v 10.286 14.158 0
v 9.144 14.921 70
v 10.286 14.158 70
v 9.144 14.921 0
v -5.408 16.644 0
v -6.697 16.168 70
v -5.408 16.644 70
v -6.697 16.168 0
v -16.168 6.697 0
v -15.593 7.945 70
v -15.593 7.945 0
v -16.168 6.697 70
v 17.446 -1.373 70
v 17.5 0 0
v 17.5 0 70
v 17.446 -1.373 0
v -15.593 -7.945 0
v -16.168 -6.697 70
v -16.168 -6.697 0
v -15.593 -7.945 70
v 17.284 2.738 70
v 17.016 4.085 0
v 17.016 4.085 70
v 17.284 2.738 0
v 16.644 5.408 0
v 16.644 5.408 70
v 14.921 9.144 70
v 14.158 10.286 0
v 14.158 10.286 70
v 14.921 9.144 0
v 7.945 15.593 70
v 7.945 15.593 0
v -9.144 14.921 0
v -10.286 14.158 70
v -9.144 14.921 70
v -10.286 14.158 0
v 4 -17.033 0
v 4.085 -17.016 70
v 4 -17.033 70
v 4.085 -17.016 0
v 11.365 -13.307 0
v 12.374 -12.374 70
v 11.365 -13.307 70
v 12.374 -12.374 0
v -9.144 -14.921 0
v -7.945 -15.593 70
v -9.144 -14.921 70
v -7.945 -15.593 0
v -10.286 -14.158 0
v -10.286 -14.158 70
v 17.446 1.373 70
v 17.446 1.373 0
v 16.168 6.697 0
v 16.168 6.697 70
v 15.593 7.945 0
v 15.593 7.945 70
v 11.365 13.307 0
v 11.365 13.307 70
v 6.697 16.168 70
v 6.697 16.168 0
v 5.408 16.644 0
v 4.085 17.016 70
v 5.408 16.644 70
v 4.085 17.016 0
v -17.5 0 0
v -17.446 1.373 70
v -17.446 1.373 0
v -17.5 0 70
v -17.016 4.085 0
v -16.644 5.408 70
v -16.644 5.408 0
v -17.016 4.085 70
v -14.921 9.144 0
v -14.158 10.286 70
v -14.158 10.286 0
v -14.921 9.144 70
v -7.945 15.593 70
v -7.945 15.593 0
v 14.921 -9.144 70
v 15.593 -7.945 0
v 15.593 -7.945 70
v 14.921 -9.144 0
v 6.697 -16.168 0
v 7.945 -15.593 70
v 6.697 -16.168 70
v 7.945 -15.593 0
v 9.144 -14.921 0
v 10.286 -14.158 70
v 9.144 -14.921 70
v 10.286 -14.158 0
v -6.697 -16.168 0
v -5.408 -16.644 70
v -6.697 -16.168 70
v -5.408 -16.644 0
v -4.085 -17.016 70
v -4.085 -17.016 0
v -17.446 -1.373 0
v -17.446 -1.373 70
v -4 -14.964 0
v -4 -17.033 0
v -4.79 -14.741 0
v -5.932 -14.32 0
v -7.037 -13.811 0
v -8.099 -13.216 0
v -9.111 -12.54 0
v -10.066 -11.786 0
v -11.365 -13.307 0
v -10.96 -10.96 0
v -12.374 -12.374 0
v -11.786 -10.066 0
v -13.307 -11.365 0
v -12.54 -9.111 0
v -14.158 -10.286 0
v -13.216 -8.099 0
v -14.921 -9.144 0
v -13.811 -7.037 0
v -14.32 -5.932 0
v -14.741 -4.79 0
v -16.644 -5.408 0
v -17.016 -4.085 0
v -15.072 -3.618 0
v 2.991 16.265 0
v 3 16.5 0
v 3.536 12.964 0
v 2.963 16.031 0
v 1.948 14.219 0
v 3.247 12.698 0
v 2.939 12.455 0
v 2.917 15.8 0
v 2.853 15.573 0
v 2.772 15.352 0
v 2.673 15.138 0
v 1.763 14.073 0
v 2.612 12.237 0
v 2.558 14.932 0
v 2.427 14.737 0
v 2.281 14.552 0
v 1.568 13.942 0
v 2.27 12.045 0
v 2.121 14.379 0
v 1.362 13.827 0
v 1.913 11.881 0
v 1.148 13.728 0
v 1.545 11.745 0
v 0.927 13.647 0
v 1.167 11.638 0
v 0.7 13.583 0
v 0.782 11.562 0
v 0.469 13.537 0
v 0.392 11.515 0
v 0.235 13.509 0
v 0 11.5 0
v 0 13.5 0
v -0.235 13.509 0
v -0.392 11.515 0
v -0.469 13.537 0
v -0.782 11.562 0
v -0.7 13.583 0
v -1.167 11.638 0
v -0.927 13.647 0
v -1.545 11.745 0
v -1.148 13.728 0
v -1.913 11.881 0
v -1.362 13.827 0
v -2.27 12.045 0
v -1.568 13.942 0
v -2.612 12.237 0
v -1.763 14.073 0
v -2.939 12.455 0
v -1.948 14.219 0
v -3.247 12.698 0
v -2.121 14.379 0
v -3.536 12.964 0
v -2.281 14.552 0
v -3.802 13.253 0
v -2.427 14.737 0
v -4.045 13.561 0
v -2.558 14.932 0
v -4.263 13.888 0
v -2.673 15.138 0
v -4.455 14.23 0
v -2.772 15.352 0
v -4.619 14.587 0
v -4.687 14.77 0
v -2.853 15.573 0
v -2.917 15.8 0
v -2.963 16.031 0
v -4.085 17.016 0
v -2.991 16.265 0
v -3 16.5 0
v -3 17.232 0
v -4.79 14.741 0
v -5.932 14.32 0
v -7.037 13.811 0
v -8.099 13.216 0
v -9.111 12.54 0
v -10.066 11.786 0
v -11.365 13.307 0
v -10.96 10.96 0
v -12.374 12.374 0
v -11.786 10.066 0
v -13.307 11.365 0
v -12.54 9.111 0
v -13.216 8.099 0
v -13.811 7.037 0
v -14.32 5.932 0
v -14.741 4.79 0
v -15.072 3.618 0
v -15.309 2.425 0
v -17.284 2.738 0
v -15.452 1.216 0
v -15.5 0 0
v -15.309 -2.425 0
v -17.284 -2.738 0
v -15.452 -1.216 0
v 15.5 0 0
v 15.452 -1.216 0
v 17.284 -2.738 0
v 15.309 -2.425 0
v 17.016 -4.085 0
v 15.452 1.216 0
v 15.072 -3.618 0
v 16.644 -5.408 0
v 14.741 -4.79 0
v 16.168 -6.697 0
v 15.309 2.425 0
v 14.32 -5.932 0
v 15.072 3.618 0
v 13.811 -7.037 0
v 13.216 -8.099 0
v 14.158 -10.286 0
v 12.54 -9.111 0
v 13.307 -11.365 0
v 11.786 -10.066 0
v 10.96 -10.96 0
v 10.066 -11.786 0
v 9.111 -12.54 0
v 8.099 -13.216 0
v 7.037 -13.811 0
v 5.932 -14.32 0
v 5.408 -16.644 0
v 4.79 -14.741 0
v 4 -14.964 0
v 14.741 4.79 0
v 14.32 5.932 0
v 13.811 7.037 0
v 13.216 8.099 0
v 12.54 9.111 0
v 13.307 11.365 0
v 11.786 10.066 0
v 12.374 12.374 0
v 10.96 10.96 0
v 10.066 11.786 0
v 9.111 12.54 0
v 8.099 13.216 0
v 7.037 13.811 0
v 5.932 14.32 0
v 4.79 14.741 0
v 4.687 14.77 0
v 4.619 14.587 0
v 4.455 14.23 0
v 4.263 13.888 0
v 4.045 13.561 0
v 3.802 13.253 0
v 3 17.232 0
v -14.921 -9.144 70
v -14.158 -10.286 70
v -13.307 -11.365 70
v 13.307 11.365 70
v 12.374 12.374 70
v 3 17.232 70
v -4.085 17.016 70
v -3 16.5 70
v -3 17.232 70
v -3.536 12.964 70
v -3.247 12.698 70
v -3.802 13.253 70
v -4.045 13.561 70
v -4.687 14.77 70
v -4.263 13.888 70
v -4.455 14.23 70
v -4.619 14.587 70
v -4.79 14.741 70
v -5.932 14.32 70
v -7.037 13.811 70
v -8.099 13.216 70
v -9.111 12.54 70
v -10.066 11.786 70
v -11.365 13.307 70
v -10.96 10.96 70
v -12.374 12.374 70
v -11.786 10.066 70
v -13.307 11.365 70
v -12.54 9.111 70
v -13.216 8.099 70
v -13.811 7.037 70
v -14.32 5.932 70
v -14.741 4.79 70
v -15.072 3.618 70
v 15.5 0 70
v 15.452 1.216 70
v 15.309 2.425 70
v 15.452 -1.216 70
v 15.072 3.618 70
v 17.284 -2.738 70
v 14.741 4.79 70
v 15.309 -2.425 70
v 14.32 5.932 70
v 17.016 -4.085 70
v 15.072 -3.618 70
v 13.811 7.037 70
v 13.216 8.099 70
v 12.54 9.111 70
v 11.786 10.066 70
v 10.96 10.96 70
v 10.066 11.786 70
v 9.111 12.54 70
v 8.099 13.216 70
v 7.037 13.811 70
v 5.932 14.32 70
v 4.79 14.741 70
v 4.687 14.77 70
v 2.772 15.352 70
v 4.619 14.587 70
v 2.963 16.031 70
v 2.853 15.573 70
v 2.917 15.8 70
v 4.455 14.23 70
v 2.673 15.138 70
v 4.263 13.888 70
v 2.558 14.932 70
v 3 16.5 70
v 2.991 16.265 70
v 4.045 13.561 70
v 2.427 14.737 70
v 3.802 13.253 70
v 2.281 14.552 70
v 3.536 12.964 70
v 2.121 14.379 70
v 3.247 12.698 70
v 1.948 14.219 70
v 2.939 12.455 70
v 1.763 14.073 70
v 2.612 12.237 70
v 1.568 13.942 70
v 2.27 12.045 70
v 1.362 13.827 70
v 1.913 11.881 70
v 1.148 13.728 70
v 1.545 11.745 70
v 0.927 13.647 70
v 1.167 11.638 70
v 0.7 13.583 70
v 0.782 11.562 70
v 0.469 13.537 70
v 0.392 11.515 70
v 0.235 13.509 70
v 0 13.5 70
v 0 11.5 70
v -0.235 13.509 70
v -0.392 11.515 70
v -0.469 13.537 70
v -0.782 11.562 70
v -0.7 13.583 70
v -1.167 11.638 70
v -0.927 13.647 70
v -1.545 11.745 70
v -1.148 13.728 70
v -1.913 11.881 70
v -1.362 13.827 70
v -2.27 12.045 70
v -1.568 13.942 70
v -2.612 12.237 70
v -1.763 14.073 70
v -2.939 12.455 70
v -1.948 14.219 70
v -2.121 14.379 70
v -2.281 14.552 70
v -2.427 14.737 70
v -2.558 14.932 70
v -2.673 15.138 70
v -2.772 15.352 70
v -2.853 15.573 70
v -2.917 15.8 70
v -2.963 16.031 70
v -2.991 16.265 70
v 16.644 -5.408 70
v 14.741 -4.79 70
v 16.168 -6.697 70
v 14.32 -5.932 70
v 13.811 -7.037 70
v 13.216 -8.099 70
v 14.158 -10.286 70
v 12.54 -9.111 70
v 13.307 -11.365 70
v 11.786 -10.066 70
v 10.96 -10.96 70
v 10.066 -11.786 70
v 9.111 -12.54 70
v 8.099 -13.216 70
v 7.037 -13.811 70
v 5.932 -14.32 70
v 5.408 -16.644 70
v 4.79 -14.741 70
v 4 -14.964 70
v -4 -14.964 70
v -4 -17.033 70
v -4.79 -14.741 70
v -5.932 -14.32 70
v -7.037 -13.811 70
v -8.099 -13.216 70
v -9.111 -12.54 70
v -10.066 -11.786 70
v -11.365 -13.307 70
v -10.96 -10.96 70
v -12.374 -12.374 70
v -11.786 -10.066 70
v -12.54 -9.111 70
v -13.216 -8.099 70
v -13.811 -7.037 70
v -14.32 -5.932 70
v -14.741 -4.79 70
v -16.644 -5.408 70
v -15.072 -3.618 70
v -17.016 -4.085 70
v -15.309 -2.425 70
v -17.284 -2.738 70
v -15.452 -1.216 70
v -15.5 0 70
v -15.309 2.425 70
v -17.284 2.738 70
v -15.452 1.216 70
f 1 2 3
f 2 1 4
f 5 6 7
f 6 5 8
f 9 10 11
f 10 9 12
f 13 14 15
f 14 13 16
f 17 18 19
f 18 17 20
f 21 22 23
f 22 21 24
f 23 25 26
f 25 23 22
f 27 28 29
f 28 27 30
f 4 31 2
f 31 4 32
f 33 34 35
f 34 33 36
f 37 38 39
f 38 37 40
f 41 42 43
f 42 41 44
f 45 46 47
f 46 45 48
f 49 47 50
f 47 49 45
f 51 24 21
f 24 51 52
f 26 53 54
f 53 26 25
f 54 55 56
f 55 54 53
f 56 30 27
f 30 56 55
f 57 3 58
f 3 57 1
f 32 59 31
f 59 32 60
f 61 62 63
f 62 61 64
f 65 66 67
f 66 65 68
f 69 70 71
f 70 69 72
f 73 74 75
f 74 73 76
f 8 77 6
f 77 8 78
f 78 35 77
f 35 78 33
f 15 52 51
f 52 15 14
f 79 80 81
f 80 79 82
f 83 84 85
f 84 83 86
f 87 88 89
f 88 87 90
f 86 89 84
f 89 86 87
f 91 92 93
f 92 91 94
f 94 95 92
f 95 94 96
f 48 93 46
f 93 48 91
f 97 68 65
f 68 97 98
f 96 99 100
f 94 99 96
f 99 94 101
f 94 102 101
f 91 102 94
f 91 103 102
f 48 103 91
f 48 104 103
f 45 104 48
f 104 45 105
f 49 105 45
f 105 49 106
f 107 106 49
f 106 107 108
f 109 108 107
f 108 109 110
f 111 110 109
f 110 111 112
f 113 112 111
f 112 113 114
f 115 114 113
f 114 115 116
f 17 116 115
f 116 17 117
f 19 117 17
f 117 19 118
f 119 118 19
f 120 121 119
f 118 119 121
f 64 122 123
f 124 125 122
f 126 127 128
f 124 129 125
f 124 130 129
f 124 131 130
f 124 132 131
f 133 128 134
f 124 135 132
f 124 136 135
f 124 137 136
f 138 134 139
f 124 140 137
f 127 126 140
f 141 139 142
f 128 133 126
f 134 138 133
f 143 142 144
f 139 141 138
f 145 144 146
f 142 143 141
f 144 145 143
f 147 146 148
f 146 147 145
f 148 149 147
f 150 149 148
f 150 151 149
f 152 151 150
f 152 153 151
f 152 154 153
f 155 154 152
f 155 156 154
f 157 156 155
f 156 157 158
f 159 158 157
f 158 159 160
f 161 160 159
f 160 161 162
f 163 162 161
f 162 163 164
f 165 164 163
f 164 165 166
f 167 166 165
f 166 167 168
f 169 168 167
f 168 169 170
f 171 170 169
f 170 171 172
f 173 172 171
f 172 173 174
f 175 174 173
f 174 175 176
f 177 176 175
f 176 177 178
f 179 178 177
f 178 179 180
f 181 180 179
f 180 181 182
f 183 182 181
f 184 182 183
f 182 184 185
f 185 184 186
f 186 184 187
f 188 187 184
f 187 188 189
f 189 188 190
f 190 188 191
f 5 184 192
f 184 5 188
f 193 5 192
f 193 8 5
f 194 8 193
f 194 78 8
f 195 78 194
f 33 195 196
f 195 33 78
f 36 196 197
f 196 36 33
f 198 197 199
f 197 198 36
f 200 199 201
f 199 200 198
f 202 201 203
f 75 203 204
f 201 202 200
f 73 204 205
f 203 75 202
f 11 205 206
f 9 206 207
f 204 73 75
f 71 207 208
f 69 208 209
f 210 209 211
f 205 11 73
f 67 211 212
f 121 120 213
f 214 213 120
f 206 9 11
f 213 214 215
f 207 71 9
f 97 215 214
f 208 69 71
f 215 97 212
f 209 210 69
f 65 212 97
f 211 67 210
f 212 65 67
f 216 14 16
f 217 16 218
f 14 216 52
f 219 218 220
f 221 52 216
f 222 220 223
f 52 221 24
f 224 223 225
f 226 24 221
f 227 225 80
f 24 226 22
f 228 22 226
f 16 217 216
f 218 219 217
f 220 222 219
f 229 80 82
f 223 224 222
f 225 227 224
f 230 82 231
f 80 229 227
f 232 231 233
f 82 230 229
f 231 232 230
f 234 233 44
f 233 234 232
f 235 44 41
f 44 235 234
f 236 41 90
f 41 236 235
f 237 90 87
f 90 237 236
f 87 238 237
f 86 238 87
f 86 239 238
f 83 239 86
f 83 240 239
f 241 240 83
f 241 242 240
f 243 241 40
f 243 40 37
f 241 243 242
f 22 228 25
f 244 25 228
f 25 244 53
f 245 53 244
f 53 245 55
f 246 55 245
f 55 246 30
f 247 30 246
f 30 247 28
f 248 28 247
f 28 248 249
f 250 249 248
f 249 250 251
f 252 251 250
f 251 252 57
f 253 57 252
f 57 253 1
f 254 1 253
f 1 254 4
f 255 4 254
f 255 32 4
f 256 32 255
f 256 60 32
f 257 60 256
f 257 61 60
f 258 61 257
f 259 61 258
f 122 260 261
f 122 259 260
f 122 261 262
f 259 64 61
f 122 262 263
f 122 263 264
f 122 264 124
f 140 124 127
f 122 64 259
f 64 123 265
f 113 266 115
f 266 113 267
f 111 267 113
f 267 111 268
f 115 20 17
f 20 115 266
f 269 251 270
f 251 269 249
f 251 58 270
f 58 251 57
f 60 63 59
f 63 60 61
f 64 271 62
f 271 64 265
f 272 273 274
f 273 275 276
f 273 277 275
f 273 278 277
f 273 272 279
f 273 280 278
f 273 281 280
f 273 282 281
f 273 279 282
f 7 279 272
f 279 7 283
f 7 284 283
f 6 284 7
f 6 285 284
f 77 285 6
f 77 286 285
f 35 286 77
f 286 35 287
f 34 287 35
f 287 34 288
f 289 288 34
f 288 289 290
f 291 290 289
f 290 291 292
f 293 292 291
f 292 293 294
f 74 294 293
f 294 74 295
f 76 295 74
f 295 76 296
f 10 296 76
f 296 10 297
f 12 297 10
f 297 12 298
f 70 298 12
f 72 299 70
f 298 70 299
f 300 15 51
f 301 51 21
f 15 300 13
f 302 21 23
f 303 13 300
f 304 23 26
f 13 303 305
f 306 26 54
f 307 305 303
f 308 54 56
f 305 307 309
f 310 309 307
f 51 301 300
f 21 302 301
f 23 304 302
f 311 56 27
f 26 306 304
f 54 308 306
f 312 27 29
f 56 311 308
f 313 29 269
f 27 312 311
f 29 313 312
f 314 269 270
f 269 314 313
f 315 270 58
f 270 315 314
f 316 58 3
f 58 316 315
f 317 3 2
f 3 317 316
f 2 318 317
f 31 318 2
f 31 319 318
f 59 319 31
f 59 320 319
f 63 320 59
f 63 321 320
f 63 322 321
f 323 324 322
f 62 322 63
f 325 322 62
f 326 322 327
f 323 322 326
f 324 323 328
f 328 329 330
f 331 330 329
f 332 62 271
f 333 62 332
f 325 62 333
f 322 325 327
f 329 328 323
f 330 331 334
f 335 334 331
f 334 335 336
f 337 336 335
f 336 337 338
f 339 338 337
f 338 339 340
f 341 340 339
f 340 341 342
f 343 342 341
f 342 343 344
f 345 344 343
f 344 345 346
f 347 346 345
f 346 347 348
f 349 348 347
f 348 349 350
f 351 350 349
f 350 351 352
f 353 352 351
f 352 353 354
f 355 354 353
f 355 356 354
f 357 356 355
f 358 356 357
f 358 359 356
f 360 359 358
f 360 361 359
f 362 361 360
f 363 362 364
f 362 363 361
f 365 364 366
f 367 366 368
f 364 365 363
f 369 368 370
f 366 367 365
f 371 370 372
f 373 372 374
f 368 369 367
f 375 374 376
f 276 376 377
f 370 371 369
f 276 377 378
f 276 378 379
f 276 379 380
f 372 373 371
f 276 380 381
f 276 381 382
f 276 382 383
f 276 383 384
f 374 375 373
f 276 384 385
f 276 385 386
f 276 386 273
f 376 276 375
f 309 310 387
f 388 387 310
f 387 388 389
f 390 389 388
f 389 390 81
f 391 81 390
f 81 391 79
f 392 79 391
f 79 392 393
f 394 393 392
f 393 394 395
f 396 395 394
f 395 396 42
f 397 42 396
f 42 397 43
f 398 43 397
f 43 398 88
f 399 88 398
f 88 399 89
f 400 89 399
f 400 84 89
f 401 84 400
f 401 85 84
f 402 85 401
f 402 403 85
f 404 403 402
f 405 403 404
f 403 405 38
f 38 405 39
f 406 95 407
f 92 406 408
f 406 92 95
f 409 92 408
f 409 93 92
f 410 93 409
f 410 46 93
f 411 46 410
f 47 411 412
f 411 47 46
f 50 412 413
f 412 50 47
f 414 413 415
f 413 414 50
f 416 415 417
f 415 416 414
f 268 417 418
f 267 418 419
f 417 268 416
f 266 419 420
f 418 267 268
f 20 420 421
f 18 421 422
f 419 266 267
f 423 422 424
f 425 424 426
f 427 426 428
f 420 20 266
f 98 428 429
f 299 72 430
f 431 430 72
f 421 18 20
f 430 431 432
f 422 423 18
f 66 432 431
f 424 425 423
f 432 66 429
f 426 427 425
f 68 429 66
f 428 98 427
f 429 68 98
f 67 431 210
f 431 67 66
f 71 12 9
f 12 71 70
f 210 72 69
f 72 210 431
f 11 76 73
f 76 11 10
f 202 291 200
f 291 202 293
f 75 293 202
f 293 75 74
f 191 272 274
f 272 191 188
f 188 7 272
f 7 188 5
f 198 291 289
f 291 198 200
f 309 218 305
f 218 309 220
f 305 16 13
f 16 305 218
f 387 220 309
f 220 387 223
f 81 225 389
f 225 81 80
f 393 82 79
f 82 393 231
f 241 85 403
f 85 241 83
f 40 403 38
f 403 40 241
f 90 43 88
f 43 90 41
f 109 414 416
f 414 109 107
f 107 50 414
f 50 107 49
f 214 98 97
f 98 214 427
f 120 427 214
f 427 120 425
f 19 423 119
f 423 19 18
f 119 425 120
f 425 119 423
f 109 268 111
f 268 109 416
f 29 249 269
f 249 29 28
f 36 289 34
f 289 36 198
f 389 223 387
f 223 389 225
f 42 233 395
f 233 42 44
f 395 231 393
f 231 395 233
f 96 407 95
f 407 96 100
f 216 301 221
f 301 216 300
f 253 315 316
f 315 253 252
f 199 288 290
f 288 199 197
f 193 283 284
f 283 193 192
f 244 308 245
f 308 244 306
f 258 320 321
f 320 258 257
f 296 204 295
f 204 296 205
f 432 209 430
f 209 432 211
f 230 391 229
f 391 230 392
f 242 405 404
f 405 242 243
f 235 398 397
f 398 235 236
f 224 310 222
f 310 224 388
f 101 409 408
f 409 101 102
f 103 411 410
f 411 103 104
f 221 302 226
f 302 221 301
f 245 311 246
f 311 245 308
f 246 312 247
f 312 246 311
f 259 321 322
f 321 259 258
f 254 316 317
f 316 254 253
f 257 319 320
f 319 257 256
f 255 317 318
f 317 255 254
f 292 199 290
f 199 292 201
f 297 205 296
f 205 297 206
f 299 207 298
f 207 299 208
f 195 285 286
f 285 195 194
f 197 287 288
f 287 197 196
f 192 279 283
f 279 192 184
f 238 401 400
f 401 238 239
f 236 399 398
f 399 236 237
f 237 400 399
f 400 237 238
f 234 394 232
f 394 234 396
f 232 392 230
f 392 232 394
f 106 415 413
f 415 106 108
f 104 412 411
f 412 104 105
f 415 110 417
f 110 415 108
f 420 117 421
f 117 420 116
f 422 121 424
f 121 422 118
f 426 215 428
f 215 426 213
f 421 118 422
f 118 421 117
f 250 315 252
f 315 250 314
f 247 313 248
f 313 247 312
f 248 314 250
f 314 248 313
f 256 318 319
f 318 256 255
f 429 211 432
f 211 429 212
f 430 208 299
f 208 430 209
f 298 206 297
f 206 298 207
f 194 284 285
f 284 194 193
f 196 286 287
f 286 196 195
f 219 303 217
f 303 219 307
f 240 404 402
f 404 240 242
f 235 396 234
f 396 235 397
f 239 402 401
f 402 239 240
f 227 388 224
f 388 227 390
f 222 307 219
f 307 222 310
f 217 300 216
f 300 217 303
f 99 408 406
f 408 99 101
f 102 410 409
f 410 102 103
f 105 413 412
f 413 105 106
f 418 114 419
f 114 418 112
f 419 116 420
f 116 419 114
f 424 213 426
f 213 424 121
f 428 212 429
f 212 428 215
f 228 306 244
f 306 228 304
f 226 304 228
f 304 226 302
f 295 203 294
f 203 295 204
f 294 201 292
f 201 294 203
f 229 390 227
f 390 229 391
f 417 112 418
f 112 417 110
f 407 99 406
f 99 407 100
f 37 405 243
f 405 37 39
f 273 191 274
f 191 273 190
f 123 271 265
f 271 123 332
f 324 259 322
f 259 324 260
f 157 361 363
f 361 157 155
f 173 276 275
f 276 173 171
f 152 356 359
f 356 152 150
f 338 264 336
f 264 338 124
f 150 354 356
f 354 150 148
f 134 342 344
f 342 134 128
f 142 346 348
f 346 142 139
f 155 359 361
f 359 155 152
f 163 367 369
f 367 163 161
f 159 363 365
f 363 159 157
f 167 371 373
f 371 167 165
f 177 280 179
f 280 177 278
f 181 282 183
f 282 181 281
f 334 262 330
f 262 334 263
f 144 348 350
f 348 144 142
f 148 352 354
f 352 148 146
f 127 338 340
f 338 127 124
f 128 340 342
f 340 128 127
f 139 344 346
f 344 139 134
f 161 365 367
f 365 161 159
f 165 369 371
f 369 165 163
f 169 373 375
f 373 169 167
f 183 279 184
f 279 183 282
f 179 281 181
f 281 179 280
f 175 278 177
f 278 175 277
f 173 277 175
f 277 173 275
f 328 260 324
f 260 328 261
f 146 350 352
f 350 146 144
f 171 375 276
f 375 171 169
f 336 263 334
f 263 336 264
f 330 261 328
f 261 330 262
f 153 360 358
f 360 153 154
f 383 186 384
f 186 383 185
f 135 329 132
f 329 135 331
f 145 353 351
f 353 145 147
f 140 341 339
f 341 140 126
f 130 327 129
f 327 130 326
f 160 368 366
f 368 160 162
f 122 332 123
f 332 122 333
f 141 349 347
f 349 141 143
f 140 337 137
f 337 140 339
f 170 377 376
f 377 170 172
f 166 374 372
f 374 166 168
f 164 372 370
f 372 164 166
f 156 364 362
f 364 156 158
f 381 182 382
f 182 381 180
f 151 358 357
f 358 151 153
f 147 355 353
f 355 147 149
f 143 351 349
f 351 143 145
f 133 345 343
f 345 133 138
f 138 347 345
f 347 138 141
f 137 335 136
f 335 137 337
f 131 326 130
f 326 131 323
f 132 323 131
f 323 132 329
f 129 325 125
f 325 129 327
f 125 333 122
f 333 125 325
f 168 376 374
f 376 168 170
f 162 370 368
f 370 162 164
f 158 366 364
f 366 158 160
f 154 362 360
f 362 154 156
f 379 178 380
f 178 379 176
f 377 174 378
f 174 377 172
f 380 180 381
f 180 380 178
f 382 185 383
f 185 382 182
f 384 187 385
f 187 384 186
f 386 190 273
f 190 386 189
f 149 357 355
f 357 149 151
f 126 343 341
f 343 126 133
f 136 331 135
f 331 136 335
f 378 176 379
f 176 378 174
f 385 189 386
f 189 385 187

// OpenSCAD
// file: variables.scad
// General

resolution = 80;
delta = 0.2;

// dimensions tubes pvc

rayon_ext_tube_32 = 16;
rayon_int_tube_32 = 13;
epaisseur_tube_32 = rayon_ext_tube_32 - rayon_int_tube_32;

rayon_ext_tube_40 = 20;
rayon_int_tube_40 = 17.5;
epaisseur_tube_40 = rayon_ext_tube_40 - rayon_int_tube_40;

ret32 = rayon_ext_tube_32;
rit32 = rayon_int_tube_32;
ep32  = epaisseur_tube_32;
ret40 = rayon_ext_tube_40;
rit40 = rayon_int_tube_40;
ep40  = epaisseur_tube_40;

// Reducteur

epaisseur_reducteur = 4;

// L'embout accueille un tube pvc de 40mm de diamètre.

hauteur_embout = 20;
rayon_int_embout = rayon_ext_tube_40 + delta;
rayon_ext_embout = 24 + delta;

hauteur_butee = 2;
rayon_int_butee = 16;

// Jonction: section de contact entre les deux pièces.
hauteur_grower = 8;

rayon_ext_culot = rayon_ext_tube_40 - delta;
rayon_int_culot = 18 - delta;
hauteur_jonction = 30;

hauteur_totale = hauteur_jonction + hauteur_embout + hauteur_butee + hauteur_grower;

profondeur_douille = 12;

largeur_empreinte = 6;

position_z_empreinte = hauteur_totale - profondeur_douille + 1;

nb_baionette = 3;
rayon_baionette = largeur_empreinte / 2;
baionette_z = hauteur_totale - (hauteur_jonction - profondeur_douille);
// file: common.scad
module tube(hauteur, rayon_exterieur, rayon_interieur, resolution=60) {
	difference(){
	  cylinder(hauteur, rayon_exterieur, rayon_exterieur, $fn=resolution);
	  translate([0,0,-1])	
	 	  cylinder(hauteur + 2 , rayon_interieur, rayon_interieur, $fn=resolution);
	}
}

module donut(nombre_spheres, rayon_spheres, rayon_exterieur){
	for ( i= [0:nombre_spheres])
		rotate([0,0,i*(360/nombre_spheres)]) {
			translate([rayon_exterieur,0,0])
			sphere(rayon_spheres, $fn=resolution_spheres);
		}
}
// main file
include <common.scad>;
include <variables.scad>;

h_gaine = 70;
r_rigole = 3;

difference(){
  tube(h_gaine, rit40, rit40-2, resolution);
  translate([-4,-(rit40+1),-1])
    cube([8,8,h_gaine+2]);

  translate([-3,rit40-3,-1])
    cube([6,6,h_gaine+2]);
}

translate([0,rit40-1,0])
  difference(){
    tube(h_gaine, r_rigole+2, r_rigole, resolution);
    translate([-(r_rigole+2),0,-1])
      cube([(r_rigole+2)*2,r_rigole+2,h_gaine+2]);
  }
